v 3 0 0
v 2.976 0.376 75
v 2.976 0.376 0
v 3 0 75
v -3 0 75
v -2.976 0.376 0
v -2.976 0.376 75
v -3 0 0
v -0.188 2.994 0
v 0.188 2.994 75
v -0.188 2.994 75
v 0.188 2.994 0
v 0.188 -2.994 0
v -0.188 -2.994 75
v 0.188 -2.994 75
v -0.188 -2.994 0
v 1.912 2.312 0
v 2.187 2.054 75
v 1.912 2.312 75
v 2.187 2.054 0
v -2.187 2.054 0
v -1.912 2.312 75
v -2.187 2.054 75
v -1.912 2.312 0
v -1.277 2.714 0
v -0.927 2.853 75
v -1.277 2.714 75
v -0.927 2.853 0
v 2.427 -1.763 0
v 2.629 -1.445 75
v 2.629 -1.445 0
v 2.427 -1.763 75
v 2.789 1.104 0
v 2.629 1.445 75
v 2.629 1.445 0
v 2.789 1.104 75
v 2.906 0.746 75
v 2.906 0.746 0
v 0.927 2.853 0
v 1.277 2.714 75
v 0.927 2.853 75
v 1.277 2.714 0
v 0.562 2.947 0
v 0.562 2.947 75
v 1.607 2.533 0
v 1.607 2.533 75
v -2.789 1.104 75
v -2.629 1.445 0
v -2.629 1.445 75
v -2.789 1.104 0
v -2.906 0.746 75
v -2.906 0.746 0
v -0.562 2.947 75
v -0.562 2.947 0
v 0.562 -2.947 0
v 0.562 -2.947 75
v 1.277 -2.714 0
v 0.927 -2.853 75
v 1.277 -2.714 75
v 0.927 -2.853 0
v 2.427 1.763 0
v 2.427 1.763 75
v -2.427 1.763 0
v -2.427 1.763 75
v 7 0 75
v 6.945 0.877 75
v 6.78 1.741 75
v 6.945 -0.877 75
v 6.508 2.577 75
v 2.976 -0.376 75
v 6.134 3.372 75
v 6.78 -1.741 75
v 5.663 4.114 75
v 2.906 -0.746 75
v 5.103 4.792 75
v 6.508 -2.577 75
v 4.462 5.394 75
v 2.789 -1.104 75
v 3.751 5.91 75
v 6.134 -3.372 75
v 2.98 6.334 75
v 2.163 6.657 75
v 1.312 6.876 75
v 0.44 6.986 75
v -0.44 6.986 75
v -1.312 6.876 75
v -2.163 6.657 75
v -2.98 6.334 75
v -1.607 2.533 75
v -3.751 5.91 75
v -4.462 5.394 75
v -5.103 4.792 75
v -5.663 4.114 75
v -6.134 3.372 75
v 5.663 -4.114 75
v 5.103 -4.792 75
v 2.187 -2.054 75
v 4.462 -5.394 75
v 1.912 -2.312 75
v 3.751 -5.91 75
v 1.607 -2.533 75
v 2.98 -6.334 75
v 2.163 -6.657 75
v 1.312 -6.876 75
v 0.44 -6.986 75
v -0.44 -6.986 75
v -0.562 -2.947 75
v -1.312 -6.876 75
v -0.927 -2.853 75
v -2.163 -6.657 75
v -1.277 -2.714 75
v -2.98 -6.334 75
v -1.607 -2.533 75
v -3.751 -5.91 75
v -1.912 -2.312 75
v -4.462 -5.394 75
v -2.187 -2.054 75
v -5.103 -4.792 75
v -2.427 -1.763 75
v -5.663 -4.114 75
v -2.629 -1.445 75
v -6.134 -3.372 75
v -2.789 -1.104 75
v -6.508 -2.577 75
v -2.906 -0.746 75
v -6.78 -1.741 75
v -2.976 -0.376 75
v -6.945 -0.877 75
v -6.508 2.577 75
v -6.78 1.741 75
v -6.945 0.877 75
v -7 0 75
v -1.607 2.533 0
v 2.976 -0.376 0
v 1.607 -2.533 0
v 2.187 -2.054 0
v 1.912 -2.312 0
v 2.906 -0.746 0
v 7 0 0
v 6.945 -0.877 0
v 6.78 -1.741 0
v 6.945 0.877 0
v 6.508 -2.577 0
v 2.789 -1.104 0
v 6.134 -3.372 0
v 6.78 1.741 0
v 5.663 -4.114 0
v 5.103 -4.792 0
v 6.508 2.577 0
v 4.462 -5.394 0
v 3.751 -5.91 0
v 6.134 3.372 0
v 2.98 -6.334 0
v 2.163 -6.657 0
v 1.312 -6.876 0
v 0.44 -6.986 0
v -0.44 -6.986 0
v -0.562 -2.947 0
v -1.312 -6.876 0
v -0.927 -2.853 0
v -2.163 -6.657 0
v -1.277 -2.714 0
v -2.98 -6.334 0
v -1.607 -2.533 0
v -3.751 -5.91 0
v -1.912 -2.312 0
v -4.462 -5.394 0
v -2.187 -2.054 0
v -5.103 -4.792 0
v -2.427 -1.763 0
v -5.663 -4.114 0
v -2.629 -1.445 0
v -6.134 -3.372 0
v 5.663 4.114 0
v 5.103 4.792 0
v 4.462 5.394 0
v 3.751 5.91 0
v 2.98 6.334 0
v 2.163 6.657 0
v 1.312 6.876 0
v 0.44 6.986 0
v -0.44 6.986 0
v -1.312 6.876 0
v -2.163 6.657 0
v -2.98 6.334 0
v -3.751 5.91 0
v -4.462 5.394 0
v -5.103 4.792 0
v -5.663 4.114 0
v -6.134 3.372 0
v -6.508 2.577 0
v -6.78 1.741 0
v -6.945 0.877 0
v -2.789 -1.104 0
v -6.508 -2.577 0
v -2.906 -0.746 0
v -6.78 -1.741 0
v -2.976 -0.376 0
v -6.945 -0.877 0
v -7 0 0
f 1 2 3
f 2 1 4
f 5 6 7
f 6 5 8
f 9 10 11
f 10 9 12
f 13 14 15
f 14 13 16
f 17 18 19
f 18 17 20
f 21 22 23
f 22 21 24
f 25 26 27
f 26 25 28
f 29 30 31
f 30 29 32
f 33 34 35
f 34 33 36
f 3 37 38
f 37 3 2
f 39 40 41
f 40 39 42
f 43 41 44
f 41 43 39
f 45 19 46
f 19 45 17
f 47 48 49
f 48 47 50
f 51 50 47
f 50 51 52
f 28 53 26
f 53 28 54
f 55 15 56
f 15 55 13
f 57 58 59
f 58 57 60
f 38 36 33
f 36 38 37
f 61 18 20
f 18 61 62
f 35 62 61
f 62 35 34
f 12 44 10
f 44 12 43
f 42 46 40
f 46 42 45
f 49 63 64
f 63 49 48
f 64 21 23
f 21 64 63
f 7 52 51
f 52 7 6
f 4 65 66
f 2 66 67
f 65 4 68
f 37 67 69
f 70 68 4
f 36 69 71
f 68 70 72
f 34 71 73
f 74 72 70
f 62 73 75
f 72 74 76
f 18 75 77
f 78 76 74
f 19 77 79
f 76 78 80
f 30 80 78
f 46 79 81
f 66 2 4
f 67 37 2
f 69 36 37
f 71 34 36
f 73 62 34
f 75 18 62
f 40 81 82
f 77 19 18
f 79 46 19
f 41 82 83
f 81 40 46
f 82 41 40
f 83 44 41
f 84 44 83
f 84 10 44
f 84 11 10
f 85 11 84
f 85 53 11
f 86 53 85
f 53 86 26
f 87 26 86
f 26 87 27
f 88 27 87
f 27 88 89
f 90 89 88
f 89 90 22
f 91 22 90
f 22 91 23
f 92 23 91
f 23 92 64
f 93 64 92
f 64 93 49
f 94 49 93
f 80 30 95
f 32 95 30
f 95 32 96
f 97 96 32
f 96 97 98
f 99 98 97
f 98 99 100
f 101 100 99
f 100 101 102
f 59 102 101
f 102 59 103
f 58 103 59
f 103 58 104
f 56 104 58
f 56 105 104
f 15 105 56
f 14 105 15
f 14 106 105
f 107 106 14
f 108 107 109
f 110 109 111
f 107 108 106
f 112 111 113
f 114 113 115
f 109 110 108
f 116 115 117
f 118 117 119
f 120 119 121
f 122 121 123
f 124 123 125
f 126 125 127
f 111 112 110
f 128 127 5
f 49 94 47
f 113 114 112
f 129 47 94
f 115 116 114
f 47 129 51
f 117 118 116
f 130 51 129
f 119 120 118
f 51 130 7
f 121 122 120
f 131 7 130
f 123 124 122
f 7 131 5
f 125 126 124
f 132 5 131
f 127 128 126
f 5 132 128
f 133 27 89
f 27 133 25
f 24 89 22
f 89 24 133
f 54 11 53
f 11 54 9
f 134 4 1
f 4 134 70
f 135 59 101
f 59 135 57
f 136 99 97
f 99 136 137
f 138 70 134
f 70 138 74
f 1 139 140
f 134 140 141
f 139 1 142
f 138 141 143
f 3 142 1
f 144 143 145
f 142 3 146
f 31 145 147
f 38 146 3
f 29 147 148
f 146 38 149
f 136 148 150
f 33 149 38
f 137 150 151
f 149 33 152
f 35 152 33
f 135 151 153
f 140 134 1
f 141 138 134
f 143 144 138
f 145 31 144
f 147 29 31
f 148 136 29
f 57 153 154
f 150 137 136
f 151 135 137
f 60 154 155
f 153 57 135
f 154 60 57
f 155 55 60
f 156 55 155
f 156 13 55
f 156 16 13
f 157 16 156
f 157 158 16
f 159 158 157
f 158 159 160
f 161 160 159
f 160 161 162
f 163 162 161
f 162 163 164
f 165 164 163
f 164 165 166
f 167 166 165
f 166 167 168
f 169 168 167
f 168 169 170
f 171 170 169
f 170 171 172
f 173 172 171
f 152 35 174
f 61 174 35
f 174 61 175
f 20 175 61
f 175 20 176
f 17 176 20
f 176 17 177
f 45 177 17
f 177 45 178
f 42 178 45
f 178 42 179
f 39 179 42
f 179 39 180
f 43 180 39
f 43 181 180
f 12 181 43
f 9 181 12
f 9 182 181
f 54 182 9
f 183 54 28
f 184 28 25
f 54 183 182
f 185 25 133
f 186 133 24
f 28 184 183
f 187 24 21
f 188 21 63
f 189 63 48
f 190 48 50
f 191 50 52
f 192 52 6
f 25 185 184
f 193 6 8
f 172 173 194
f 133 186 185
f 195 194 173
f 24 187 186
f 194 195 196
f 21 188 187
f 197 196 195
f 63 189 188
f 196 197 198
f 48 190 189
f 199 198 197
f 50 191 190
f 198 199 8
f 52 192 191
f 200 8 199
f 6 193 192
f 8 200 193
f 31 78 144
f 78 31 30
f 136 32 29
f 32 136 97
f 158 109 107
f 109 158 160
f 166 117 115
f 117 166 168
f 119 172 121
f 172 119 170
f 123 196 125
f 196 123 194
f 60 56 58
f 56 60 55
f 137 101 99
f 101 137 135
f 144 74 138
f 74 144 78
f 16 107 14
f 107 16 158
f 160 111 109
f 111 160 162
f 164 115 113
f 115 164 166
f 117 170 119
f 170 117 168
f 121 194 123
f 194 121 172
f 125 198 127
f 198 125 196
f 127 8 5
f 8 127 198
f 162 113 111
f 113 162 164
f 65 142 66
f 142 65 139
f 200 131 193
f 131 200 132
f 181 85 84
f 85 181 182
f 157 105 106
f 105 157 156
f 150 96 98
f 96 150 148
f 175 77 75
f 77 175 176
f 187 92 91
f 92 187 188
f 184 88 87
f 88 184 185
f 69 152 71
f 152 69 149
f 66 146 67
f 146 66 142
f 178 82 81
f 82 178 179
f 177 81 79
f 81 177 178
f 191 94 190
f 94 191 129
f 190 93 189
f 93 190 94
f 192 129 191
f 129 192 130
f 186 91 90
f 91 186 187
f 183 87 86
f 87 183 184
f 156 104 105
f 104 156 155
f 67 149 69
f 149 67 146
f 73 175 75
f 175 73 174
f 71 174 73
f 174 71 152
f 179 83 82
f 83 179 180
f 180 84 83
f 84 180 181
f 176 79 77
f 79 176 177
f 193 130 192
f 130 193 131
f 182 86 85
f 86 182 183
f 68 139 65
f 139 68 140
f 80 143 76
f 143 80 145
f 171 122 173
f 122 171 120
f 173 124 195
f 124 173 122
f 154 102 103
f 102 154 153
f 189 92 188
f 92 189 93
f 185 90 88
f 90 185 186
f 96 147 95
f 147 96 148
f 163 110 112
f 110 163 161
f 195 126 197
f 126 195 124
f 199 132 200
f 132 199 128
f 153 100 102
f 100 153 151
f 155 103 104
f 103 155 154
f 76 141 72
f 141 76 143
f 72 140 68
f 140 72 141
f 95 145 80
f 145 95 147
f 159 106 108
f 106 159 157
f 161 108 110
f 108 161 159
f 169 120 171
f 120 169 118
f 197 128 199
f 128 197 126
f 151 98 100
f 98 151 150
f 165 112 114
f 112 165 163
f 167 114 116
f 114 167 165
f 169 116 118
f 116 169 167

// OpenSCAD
$fn = 50;


difference() {
	union() {
		cylinder(h = 75, r = 7.0000000000);
	}
	union() {
		translate(v = [0.0000000000, 0.0000000000, -100.0000000000]) {
			cylinder(h = 200, r = 3.0000000000);
		}
		translate(v = [0.0000000000, 0.0000000000, -100.0000000000]) {
			cylinder(h = 200, r = 3.0000000000);
		}
		translate(v = [0.0000000000, 0.0000000000, -100.0000000000]) {
			cylinder(h = 200, r = 3.0000000000);
		}
		translate(v = [0.0000000000, 0.0000000000, -100.0000000000]) {
			cylinder(h = 200, r = 3.0000000000);
		}
	}
}
